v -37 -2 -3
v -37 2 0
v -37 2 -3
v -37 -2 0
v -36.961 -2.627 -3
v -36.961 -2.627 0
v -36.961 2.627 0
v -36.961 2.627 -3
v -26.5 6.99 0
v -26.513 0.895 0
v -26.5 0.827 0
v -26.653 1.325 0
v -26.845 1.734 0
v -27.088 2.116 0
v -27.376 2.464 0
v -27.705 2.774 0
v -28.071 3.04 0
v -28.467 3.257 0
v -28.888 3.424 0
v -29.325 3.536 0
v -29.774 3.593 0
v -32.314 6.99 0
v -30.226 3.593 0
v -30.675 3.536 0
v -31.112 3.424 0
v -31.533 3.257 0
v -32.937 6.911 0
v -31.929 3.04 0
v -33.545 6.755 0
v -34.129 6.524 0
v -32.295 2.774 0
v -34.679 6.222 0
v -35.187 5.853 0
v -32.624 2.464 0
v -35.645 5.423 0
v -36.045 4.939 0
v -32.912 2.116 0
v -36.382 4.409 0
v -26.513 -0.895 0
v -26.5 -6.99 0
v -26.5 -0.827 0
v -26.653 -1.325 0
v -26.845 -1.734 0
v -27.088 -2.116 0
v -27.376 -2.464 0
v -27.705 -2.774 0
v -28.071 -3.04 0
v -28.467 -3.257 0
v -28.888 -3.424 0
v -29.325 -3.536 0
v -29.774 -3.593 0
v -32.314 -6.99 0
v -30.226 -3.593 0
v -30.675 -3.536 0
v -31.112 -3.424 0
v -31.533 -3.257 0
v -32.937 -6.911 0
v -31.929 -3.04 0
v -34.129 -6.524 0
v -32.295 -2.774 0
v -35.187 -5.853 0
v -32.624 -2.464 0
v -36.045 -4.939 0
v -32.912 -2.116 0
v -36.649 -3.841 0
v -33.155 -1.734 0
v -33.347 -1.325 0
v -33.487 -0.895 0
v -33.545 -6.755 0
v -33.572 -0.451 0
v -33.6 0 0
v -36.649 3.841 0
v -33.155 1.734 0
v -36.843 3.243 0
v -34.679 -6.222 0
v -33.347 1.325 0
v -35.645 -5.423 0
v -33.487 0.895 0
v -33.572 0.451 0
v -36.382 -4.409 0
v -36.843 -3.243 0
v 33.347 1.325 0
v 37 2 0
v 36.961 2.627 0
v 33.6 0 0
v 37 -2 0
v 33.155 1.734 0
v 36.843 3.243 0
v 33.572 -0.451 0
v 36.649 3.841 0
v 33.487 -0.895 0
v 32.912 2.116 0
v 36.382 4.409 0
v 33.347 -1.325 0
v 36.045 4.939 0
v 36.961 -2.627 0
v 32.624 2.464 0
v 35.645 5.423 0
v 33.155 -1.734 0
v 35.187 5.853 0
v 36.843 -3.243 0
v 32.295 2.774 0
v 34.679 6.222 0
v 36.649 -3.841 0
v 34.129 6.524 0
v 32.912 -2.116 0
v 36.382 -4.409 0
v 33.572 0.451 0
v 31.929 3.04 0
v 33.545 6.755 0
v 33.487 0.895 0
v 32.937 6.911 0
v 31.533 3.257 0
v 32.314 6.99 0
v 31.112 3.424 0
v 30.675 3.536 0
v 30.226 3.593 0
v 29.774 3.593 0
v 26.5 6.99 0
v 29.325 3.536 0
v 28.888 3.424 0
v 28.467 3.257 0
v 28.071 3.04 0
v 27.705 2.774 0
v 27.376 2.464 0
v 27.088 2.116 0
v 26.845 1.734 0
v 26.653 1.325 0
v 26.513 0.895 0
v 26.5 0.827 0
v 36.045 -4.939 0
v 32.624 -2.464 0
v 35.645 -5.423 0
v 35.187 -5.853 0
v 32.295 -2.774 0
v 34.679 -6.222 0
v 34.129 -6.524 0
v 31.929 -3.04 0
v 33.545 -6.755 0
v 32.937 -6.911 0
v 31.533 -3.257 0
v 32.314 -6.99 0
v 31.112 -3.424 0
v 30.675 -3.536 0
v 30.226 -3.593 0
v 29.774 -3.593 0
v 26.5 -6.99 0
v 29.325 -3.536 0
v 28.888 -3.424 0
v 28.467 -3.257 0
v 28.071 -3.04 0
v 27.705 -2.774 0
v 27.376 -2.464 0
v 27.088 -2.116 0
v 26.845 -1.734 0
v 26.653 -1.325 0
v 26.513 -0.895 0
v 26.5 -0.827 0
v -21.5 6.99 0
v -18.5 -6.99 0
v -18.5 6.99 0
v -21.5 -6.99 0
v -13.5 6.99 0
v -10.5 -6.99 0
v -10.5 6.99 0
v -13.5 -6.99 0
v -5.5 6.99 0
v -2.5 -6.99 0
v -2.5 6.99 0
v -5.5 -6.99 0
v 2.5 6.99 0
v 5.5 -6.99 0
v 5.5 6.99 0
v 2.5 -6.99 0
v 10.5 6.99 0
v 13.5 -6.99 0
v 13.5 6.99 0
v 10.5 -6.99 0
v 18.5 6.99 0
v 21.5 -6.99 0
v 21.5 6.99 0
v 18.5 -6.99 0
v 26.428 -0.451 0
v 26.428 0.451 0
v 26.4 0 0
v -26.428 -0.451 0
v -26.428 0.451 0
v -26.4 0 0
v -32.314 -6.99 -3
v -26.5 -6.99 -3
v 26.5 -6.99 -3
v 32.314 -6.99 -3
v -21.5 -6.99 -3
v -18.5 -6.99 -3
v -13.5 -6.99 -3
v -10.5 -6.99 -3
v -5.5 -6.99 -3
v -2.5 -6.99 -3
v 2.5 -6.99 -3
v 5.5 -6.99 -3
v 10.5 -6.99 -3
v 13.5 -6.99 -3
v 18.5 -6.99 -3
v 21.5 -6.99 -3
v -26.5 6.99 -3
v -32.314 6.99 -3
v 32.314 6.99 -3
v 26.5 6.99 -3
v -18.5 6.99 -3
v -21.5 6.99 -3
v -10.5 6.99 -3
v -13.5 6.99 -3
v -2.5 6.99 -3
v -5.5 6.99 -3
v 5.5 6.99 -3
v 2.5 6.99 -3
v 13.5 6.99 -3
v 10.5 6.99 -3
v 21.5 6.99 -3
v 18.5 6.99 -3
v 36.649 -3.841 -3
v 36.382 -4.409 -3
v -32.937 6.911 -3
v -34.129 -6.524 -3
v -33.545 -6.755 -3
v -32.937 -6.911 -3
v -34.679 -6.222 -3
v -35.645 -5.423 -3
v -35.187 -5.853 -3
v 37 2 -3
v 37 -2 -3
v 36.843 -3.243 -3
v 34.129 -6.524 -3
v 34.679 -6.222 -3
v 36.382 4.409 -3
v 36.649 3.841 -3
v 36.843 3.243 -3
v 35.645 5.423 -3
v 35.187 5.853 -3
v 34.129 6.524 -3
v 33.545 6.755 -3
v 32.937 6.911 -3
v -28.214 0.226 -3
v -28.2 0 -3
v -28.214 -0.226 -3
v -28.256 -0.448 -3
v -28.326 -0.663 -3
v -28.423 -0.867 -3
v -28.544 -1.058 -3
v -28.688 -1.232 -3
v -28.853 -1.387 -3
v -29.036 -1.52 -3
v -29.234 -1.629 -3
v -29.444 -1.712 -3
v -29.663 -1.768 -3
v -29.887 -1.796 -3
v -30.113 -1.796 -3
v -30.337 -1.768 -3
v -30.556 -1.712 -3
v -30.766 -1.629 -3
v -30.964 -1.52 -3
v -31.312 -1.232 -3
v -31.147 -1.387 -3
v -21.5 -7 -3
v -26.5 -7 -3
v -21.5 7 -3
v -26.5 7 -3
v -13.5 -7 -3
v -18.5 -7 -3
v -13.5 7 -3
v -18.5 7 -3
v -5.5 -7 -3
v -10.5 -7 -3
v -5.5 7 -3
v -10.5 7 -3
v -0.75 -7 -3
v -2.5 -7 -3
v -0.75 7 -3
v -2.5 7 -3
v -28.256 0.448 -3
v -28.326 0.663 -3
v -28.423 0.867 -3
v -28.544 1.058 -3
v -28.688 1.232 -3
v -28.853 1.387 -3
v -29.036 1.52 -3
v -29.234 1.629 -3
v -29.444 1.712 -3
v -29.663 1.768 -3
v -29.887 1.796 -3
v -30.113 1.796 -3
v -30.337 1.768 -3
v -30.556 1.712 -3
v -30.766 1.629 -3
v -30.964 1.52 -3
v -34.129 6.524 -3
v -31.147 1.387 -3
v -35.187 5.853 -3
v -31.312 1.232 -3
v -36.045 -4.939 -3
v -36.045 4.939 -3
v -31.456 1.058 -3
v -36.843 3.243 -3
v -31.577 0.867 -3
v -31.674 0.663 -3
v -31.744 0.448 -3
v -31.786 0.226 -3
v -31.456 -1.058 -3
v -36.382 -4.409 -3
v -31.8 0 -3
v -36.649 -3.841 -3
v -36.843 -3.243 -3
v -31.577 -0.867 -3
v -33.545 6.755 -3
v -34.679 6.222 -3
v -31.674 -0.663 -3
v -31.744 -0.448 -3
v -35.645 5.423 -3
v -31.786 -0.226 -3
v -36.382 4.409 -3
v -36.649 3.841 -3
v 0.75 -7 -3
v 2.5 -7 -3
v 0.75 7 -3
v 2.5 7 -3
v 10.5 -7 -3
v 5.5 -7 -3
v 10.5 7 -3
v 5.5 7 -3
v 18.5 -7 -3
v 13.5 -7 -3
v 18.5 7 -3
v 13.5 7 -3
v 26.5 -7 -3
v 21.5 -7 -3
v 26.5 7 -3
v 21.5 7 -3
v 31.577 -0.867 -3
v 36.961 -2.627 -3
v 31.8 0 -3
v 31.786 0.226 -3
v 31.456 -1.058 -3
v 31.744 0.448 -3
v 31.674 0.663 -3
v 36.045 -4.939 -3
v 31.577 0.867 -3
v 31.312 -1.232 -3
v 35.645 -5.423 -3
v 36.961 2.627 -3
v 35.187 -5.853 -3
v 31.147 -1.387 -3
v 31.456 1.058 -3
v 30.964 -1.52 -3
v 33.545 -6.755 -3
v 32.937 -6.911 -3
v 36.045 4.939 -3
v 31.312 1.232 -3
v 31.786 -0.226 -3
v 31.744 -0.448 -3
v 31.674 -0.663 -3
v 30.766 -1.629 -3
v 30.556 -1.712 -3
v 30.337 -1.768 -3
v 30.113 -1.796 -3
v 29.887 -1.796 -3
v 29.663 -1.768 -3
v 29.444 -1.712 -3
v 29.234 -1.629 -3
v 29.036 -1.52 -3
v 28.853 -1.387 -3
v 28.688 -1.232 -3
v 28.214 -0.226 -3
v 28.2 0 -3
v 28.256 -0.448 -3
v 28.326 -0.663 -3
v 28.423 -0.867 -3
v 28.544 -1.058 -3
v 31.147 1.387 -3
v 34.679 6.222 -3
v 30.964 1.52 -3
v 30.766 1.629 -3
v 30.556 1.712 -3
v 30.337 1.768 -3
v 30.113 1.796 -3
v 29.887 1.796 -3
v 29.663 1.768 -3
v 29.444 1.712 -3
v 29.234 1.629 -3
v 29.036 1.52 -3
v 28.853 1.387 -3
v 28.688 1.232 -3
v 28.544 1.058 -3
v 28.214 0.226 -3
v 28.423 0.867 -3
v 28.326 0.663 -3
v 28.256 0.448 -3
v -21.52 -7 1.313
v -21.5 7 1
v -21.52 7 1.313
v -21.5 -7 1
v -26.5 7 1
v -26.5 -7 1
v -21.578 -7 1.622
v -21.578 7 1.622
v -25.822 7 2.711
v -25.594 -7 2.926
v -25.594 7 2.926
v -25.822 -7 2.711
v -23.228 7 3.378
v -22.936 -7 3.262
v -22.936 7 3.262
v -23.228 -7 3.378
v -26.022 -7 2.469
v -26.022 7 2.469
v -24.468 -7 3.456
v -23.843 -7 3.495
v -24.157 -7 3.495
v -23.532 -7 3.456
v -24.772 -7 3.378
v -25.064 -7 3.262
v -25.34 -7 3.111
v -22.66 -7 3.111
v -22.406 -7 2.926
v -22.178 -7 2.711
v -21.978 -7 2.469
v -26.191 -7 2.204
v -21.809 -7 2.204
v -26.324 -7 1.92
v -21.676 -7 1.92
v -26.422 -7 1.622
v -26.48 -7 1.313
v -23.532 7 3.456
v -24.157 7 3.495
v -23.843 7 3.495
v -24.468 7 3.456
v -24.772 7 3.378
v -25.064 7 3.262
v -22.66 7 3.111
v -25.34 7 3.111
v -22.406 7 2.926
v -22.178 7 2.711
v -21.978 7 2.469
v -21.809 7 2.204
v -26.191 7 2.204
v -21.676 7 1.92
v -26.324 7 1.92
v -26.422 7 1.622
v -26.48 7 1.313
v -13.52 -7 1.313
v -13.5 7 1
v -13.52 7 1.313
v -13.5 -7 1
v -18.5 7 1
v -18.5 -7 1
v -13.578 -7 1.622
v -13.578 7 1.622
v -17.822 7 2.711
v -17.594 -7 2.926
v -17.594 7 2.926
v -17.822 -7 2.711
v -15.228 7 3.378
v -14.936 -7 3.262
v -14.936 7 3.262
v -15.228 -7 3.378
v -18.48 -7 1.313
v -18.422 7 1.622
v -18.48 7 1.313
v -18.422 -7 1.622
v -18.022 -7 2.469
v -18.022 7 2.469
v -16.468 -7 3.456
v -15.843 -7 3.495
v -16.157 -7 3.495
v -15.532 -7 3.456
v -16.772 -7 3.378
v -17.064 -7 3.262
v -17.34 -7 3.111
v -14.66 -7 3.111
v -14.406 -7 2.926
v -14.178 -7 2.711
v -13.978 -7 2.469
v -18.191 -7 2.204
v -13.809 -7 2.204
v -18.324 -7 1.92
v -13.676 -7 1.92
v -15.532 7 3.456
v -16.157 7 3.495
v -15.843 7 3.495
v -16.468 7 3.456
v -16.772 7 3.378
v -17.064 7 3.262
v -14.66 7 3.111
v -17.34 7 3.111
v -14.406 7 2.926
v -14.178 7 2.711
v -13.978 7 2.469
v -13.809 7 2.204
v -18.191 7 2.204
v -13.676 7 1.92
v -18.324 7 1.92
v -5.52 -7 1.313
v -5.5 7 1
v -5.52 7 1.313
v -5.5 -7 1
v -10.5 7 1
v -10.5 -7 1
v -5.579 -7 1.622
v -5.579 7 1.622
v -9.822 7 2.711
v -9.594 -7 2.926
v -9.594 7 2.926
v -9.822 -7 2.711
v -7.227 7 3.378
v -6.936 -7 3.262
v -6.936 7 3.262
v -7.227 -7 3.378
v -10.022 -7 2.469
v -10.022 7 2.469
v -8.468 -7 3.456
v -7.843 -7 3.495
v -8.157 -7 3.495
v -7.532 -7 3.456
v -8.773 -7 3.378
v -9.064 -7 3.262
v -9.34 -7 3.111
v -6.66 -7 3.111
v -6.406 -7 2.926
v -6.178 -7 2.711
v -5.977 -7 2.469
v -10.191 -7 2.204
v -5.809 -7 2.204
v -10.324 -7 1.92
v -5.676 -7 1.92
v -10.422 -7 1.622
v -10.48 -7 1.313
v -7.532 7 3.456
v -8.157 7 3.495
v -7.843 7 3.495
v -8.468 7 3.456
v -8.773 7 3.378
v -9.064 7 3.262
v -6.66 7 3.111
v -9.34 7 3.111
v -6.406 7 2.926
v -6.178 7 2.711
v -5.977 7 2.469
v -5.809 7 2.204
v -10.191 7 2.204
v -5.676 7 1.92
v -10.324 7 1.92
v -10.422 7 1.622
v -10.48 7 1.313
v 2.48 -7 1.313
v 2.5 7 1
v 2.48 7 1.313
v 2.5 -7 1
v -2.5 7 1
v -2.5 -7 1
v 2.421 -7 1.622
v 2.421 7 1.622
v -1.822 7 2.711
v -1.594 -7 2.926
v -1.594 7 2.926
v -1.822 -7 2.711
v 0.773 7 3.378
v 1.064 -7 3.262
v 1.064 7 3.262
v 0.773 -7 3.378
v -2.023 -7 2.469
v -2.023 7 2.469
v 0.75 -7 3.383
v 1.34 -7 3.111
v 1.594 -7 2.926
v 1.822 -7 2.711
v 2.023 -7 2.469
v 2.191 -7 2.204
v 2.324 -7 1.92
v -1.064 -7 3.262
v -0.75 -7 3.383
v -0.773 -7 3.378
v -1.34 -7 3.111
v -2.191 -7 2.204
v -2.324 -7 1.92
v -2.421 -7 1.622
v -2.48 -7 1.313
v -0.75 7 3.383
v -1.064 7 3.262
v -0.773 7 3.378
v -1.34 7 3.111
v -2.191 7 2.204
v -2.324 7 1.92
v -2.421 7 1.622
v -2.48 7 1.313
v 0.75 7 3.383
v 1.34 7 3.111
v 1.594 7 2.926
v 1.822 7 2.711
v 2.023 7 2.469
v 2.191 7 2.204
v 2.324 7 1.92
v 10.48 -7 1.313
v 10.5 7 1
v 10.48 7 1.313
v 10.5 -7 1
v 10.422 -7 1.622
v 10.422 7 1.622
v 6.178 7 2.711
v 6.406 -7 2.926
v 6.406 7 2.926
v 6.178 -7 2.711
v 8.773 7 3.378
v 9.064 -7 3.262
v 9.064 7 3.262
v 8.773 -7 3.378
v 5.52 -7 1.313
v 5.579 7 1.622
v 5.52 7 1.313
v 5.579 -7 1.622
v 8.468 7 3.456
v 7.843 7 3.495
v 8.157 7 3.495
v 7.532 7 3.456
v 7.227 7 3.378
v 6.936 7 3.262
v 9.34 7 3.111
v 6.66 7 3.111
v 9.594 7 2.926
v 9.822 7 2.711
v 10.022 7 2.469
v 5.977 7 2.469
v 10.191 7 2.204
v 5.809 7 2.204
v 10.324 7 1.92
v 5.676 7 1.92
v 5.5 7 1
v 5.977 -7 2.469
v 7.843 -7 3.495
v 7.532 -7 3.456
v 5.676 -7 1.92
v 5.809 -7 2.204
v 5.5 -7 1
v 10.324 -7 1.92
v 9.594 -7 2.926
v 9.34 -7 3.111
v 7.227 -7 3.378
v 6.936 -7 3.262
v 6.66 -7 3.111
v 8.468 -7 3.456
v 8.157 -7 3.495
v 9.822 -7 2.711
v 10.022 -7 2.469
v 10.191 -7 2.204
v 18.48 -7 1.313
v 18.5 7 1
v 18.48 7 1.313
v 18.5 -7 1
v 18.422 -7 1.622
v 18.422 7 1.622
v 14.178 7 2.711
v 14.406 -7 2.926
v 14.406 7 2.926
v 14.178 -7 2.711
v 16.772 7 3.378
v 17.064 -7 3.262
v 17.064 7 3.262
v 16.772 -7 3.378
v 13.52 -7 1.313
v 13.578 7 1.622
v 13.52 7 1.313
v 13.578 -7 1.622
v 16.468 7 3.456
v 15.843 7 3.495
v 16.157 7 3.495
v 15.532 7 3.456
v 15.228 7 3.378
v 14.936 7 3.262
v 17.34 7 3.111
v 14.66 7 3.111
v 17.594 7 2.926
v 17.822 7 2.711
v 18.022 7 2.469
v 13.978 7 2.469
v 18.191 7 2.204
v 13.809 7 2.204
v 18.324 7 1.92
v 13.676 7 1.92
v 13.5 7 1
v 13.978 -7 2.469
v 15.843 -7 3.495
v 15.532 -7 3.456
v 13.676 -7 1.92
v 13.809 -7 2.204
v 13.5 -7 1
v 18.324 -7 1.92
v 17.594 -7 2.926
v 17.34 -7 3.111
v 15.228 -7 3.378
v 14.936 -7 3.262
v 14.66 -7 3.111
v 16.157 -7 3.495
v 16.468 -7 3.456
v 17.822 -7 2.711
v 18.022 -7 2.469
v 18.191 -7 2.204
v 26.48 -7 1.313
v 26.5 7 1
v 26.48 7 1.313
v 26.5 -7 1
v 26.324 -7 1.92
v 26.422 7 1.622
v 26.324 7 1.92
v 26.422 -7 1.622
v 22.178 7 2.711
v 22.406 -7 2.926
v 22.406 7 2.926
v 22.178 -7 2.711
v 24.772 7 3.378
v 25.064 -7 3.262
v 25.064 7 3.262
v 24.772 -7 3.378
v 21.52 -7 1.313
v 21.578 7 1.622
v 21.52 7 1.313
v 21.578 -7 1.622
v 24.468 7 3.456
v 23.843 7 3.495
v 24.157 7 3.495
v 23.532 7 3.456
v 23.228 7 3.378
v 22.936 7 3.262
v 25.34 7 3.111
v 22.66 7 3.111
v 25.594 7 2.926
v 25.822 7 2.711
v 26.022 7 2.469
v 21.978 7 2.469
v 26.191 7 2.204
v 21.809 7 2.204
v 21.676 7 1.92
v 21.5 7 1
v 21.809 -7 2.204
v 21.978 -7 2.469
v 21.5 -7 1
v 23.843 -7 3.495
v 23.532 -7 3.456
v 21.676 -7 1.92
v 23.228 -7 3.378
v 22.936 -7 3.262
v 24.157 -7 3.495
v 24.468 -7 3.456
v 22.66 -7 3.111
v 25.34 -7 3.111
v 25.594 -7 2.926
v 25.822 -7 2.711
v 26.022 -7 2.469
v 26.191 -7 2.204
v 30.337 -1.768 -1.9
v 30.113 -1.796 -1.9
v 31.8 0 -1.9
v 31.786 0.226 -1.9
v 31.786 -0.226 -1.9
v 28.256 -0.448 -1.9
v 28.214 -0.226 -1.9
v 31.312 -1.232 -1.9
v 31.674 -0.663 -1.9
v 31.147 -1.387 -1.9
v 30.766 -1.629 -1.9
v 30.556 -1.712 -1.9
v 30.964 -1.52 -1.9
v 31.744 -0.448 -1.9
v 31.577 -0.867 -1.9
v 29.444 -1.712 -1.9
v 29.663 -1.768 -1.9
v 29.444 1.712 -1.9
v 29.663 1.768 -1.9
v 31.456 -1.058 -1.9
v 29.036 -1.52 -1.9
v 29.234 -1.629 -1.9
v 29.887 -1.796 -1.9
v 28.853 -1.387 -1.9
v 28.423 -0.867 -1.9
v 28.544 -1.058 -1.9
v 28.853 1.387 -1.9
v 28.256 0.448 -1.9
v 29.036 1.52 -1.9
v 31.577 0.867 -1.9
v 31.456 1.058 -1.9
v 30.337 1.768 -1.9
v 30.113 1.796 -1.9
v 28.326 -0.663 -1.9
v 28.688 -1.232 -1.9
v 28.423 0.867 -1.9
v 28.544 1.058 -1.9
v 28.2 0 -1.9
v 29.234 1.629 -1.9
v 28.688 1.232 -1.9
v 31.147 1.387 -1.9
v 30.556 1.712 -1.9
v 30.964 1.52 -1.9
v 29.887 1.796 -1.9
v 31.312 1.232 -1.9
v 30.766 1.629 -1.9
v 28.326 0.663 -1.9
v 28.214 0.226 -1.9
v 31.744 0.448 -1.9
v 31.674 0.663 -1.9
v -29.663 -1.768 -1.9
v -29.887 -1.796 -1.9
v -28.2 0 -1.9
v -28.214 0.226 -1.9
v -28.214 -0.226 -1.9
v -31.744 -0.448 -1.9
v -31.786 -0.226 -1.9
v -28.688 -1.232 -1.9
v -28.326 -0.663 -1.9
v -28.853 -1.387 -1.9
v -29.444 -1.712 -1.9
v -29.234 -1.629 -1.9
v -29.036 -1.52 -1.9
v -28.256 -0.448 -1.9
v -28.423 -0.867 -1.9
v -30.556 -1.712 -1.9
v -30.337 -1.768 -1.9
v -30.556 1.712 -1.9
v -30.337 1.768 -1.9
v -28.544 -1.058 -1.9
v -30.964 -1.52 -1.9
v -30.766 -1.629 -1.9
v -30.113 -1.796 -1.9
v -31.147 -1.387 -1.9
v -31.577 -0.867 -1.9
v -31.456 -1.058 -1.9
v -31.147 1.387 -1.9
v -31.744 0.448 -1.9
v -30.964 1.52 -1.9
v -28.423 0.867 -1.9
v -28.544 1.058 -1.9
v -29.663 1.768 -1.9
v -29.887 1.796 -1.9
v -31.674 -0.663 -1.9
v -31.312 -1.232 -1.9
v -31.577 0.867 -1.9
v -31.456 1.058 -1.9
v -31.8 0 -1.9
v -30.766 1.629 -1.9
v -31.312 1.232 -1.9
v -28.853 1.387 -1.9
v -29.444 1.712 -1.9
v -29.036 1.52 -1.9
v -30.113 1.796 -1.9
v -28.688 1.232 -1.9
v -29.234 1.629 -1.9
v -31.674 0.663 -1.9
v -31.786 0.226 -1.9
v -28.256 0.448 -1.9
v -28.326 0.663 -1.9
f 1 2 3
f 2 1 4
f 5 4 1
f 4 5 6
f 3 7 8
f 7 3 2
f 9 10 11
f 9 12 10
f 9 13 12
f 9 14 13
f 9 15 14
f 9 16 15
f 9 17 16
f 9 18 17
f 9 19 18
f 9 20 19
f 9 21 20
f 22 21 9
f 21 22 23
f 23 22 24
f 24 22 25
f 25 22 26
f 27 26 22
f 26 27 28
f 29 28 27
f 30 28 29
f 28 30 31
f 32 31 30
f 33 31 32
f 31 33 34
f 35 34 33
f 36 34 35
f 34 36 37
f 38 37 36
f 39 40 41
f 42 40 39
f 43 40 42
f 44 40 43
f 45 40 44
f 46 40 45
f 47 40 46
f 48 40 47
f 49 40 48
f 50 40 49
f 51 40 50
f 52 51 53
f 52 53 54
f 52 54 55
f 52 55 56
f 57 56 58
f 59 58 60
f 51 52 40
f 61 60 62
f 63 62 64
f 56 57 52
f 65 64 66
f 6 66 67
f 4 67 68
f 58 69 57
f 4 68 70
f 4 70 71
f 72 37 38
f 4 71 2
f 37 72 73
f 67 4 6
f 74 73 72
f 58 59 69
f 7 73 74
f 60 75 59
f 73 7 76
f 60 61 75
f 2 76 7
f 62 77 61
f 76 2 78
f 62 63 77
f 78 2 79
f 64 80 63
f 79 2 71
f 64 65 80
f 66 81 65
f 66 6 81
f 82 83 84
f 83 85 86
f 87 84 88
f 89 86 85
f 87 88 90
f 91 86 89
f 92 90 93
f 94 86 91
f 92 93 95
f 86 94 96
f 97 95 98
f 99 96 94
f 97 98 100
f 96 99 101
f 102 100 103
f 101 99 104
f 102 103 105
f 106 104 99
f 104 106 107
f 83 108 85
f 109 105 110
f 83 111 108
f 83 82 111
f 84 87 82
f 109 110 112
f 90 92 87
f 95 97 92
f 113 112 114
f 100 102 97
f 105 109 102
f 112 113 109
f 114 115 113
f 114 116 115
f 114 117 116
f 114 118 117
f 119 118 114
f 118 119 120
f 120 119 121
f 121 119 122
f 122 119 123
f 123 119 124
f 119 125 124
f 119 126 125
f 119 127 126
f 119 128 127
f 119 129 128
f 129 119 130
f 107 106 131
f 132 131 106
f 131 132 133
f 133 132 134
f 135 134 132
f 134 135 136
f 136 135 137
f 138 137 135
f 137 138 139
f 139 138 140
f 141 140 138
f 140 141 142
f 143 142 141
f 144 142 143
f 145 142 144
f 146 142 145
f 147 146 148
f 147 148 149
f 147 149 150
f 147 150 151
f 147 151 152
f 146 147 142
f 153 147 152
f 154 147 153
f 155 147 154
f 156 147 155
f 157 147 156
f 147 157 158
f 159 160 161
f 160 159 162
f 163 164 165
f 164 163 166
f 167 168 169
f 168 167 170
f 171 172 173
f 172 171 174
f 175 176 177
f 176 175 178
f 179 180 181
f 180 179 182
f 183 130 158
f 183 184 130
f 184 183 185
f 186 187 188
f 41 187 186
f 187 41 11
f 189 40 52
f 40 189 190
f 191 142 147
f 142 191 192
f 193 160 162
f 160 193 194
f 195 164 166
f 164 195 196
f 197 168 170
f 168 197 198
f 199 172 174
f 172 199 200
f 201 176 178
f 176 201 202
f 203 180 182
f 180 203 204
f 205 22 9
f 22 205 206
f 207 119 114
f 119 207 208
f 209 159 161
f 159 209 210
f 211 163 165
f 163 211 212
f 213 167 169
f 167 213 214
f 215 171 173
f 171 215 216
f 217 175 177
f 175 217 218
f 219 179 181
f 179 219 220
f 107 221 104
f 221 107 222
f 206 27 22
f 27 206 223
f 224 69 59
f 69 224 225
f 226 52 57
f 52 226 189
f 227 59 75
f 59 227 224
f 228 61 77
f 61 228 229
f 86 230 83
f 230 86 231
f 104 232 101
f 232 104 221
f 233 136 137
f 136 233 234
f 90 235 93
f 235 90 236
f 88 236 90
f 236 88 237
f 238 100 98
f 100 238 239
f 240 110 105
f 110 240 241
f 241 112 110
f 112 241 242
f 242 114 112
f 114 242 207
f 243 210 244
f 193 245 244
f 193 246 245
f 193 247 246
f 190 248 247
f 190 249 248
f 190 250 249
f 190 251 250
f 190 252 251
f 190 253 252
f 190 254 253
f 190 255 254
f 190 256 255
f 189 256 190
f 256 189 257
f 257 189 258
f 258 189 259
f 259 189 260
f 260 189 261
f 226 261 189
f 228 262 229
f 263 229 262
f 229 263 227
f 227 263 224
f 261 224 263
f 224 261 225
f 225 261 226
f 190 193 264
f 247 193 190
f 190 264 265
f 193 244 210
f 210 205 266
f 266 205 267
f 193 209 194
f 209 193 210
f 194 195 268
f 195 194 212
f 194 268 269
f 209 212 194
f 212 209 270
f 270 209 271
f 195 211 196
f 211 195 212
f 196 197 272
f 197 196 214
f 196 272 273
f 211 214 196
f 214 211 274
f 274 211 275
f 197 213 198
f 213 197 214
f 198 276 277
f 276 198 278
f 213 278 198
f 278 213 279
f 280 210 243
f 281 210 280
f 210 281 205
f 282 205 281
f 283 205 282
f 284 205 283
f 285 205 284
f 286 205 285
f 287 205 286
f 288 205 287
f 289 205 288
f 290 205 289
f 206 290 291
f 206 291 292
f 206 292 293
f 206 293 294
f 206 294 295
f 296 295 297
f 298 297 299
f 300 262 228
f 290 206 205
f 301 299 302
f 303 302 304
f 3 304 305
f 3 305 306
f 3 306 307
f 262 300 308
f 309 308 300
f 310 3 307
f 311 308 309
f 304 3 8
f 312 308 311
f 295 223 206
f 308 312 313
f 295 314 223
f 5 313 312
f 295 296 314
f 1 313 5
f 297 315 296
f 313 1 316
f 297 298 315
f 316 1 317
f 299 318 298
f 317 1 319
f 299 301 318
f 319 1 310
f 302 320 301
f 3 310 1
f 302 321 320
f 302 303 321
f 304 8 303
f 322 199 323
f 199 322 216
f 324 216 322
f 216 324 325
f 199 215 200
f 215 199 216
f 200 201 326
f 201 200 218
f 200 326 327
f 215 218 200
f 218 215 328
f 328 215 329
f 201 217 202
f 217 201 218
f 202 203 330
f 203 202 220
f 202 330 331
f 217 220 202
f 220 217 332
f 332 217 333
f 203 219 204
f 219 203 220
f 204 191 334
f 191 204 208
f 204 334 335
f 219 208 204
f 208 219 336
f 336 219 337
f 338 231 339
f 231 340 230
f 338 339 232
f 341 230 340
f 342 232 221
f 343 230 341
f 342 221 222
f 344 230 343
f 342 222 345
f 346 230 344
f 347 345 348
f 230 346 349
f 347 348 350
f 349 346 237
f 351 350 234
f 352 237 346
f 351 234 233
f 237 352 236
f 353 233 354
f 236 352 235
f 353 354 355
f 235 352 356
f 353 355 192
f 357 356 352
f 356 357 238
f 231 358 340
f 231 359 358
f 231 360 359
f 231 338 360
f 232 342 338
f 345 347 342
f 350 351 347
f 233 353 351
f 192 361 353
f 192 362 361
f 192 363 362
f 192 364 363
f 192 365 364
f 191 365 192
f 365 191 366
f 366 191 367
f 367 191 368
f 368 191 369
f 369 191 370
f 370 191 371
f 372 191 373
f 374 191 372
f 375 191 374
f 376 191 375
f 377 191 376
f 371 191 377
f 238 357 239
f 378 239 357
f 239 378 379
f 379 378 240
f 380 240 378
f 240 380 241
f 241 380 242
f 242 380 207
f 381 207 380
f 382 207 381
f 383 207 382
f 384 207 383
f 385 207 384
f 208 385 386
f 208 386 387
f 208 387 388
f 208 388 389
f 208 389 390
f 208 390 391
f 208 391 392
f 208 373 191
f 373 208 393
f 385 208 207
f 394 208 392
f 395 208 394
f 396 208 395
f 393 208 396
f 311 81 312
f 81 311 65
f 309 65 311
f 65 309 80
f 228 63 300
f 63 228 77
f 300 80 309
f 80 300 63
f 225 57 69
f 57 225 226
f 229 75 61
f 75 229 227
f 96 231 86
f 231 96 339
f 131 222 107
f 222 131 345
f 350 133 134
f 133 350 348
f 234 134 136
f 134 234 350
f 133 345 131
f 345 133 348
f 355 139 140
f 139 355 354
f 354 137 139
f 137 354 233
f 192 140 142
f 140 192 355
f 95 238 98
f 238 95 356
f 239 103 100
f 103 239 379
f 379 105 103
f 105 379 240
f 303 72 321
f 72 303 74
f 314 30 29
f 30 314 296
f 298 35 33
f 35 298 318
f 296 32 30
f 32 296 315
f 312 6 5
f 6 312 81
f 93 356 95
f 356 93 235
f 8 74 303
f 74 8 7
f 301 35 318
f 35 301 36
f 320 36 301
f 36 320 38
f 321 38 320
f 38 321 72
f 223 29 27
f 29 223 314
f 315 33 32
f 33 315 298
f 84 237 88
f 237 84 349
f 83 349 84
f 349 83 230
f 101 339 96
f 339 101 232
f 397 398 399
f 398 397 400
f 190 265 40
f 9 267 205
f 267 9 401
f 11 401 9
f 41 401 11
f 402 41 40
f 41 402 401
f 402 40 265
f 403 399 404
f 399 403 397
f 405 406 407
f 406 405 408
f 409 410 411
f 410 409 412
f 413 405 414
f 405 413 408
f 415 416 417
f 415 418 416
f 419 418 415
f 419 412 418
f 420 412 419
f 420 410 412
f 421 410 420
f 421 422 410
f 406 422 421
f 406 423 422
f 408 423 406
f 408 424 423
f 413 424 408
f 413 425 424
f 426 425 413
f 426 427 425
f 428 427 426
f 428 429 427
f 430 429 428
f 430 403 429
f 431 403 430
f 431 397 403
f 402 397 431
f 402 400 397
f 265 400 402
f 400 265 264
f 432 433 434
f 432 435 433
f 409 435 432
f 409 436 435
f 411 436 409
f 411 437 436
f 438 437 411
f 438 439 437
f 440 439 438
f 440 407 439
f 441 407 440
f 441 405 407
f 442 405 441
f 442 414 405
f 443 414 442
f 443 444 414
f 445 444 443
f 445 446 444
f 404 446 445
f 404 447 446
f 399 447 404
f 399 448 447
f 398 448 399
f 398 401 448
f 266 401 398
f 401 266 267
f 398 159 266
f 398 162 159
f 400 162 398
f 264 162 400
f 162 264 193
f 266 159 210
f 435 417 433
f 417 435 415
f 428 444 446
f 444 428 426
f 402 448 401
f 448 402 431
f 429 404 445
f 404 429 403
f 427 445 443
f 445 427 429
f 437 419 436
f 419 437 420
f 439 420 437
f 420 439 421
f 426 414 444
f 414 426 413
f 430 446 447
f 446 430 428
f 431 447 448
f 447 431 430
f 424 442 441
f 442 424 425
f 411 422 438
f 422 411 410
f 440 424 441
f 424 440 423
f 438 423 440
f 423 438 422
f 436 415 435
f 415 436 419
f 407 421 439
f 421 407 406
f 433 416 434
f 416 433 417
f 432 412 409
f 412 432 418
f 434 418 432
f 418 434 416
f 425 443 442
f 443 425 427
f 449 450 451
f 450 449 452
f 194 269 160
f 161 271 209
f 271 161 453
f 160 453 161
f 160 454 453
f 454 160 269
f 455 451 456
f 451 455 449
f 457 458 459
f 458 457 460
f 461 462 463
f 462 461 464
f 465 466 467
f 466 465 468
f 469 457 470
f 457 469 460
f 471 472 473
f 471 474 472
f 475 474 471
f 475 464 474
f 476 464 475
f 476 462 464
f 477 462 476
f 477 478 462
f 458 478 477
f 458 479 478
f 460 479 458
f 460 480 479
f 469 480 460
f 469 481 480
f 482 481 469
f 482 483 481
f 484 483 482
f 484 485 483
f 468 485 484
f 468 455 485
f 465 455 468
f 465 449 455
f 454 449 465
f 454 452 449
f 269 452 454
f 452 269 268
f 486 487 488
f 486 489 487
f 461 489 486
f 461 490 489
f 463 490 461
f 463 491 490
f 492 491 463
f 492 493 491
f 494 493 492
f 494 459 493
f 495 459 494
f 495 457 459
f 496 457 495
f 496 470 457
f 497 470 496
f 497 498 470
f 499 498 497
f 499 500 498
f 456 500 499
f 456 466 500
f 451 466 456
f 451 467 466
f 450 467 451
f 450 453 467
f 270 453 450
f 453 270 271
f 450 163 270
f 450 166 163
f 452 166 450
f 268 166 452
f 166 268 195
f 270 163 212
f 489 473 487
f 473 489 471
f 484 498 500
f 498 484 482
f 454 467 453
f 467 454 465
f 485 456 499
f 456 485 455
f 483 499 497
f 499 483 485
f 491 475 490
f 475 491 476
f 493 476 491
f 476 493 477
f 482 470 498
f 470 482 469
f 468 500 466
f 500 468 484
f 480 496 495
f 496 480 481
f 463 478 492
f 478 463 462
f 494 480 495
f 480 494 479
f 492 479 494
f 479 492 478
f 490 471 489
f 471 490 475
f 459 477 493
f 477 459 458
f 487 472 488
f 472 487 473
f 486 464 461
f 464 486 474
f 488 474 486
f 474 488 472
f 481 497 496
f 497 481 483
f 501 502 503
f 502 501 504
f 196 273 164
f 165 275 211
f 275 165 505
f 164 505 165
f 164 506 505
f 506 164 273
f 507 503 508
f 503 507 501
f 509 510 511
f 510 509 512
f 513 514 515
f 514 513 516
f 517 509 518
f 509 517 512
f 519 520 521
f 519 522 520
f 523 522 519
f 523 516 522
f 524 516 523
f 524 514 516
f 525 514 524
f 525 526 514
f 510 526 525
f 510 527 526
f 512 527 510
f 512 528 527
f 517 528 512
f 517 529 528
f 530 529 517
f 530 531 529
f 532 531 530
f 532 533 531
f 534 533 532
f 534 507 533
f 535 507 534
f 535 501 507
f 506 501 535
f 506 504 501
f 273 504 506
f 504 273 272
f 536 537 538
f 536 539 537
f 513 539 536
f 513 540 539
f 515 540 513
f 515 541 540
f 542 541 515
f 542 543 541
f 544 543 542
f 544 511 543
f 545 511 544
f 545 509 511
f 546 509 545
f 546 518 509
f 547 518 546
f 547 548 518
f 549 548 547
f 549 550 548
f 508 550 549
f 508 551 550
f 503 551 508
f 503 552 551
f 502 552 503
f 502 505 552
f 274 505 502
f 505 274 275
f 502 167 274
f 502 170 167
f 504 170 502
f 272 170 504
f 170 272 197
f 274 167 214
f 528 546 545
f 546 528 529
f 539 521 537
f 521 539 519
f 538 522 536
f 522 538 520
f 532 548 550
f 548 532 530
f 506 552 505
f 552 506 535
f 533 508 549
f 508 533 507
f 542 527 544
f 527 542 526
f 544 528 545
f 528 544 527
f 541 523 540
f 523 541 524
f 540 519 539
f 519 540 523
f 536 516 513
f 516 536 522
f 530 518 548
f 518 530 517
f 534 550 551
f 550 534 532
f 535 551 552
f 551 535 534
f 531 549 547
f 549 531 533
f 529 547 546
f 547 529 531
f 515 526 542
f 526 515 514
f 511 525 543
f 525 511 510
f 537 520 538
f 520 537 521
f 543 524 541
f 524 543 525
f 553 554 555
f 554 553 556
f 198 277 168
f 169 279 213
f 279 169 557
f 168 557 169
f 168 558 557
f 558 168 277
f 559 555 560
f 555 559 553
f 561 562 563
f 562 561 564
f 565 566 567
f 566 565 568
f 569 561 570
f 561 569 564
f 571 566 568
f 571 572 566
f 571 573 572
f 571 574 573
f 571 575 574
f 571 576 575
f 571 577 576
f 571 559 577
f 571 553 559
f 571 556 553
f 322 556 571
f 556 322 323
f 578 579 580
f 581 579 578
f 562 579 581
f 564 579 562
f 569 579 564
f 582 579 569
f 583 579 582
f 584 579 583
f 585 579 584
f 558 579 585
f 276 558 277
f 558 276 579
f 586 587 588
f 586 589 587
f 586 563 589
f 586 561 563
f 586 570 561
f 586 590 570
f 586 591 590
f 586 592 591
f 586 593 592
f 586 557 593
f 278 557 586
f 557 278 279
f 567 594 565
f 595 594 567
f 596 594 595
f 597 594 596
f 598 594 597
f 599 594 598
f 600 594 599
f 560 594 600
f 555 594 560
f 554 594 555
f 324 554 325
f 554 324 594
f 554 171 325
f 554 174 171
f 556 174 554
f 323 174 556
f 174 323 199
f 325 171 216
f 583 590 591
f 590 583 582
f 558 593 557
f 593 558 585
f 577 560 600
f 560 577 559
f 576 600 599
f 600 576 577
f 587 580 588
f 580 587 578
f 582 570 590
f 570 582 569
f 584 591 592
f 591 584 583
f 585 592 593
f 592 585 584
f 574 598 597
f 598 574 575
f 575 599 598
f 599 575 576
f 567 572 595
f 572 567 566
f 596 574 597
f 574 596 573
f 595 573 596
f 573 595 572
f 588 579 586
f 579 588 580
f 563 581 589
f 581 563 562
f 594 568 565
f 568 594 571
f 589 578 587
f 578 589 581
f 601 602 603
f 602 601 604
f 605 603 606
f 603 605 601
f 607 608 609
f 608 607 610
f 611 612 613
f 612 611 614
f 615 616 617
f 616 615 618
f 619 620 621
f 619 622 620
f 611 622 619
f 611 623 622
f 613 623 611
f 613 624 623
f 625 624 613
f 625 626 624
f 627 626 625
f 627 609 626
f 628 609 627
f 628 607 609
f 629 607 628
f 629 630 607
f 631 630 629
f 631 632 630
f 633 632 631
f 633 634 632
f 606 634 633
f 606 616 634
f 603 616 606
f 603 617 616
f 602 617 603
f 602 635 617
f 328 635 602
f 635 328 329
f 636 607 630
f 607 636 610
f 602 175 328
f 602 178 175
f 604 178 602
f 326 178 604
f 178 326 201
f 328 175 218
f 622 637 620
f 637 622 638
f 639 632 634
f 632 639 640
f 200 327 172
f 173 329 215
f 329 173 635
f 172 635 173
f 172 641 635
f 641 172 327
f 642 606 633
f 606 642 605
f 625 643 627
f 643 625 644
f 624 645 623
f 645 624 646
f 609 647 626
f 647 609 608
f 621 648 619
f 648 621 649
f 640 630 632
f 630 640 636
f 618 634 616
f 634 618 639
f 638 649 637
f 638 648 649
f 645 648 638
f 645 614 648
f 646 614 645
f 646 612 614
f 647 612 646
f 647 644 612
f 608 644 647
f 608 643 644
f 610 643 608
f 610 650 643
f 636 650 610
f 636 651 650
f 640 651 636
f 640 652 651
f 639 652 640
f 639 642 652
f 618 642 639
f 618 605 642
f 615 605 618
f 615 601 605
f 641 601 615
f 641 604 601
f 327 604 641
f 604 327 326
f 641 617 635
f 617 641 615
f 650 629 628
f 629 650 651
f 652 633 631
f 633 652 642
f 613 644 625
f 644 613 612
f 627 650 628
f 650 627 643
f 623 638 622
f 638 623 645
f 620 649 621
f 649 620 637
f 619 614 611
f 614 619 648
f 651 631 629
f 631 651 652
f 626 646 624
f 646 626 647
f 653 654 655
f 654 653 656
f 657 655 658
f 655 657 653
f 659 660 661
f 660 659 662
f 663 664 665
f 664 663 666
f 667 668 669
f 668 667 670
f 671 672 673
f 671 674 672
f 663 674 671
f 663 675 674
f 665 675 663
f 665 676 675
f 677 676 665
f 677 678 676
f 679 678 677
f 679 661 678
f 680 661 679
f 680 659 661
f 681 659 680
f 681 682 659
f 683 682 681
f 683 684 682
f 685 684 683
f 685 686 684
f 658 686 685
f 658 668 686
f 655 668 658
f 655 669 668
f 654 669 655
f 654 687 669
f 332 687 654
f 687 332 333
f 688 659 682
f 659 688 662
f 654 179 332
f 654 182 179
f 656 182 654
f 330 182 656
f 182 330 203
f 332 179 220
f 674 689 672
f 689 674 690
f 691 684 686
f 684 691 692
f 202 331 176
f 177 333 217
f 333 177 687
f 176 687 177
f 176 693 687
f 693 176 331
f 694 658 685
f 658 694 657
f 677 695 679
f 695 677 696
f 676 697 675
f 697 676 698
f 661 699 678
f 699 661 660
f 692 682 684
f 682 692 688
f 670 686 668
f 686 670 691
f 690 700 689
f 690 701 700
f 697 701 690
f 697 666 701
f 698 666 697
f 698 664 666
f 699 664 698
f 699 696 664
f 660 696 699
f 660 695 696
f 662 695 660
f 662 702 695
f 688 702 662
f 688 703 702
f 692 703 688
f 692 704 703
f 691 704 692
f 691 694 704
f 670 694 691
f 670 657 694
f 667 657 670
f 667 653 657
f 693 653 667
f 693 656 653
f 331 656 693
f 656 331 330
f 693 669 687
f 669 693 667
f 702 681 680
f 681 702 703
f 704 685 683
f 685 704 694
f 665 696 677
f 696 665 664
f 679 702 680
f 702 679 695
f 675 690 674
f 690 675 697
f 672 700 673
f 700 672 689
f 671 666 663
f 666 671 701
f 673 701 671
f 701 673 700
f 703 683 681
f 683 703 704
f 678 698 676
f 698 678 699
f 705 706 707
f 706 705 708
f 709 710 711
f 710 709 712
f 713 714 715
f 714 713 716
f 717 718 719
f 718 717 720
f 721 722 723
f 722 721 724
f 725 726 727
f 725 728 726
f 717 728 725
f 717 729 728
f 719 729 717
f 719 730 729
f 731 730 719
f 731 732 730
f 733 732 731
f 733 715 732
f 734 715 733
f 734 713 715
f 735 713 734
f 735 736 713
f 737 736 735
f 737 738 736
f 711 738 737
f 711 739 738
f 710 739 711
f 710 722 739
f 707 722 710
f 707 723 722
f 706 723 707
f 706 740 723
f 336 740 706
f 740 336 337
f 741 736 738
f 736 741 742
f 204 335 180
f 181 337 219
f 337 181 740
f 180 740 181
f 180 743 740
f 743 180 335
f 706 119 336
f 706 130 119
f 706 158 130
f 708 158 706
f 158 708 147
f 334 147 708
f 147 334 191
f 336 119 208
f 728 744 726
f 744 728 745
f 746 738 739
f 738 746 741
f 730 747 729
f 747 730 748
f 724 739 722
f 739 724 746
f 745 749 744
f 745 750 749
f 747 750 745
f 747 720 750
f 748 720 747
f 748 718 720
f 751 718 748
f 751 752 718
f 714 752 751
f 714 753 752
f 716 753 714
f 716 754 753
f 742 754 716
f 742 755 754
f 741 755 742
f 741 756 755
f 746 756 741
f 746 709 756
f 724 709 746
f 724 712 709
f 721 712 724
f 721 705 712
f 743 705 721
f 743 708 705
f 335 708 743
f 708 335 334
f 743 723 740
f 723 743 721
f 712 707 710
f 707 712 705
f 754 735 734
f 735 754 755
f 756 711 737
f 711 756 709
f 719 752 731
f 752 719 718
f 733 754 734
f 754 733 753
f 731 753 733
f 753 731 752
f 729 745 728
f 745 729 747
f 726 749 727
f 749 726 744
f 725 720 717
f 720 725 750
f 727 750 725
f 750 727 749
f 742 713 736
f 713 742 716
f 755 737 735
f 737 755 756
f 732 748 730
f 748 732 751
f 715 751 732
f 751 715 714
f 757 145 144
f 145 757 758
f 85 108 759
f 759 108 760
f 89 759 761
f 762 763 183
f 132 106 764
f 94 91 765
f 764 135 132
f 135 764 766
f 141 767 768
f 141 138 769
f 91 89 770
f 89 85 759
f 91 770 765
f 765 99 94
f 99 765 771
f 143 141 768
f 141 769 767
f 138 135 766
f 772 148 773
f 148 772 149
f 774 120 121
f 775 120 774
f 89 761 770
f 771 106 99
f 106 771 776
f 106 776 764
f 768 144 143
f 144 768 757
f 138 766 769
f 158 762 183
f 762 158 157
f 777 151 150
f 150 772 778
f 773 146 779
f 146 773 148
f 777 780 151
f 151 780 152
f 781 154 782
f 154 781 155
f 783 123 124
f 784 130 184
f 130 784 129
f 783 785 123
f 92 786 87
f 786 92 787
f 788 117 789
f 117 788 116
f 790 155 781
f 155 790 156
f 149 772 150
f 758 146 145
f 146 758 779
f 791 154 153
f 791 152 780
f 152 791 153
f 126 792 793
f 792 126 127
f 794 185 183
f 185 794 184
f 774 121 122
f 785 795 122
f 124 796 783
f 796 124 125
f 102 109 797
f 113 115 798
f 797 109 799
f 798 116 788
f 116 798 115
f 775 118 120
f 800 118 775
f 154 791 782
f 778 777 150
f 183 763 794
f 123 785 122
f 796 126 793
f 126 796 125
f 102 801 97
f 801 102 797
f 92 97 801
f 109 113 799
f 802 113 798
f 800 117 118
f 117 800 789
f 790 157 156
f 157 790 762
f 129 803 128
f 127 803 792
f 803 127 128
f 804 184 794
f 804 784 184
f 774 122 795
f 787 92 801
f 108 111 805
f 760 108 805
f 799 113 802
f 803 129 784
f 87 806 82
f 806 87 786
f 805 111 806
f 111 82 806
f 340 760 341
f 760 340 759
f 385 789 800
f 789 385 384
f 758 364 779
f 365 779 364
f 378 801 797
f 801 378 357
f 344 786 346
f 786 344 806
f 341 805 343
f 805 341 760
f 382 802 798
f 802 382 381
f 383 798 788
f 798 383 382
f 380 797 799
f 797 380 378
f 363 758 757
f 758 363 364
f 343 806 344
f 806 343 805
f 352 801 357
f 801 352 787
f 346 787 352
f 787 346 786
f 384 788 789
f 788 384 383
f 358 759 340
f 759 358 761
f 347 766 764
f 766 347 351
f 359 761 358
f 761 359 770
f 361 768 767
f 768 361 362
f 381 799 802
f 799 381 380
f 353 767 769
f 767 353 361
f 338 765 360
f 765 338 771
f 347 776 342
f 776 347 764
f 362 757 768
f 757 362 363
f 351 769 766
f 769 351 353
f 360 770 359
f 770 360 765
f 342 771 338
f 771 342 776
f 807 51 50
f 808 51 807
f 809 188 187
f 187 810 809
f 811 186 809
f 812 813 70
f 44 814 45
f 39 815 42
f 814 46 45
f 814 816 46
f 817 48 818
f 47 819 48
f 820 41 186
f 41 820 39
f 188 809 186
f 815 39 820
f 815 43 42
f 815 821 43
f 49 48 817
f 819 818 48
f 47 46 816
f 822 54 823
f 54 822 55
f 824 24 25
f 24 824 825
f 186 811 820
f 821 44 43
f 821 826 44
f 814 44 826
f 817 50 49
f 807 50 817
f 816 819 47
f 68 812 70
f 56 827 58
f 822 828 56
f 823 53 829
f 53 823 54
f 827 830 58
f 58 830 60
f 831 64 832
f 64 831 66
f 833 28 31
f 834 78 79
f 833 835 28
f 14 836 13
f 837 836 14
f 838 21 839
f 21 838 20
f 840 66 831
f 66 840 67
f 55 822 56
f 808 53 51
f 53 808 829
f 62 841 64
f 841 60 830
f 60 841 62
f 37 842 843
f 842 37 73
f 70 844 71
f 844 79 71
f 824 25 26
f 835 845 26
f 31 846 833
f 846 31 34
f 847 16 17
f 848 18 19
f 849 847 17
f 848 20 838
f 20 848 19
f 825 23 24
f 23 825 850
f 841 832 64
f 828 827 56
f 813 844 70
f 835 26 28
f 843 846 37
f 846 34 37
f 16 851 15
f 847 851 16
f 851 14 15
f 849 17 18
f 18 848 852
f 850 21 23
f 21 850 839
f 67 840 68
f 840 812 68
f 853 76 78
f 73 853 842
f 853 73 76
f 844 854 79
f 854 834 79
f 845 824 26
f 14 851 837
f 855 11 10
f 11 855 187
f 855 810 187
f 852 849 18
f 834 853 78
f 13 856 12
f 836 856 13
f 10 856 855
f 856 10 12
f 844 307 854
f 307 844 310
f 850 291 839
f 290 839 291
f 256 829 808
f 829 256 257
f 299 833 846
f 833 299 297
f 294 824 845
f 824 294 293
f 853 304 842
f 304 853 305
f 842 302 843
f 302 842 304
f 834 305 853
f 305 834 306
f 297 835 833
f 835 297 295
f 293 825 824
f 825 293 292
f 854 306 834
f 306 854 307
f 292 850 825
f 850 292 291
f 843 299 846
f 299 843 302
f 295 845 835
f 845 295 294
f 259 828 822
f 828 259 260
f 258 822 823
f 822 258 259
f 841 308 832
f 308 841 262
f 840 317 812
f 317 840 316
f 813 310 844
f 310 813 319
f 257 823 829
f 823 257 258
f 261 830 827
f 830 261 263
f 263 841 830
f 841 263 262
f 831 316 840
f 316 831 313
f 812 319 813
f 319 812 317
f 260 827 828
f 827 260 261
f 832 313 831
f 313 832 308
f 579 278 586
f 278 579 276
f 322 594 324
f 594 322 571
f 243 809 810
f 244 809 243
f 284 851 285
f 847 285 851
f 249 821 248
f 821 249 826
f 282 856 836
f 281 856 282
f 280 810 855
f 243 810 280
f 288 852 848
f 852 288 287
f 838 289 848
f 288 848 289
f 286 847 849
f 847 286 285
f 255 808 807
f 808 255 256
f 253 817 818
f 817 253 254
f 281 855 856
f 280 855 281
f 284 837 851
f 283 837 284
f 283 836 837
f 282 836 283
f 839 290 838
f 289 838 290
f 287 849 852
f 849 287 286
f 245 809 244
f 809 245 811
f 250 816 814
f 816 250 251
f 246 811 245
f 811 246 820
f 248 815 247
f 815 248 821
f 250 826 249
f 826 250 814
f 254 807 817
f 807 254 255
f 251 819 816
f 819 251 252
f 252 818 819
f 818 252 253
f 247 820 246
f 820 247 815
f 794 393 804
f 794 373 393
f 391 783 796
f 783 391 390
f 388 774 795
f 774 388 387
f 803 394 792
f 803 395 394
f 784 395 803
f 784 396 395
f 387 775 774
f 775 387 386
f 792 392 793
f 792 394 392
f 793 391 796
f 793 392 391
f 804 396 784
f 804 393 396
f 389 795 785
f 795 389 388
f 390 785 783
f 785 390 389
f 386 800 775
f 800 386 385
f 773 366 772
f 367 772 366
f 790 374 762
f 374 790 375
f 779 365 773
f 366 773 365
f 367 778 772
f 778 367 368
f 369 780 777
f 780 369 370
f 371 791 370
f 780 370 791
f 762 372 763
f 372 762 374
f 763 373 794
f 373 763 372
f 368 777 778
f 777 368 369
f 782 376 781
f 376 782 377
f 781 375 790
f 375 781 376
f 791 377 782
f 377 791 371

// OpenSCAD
$fn = 50;


difference() {
	union() {
		translate(v = [0, 0, -3]) {
			hull() {
				translate(v = [-32.0000000000, 2.0000000000, 0]) {
					cylinder(h = 3, r = 5);
				}
				translate(v = [32.0000000000, 2.0000000000, 0]) {
					cylinder(h = 3, r = 5);
				}
				translate(v = [-32.0000000000, -2.0000000000, 0]) {
					cylinder(h = 3, r = 5);
				}
				translate(v = [32.0000000000, -2.0000000000, 0]) {
					cylinder(h = 3, r = 5);
				}
			}
		}
		translate(v = [-24.0000000000, 7.0000000000, -1.5000000000]) {
			rotate(a = [90, 0, 0]) {
				hull() {
					translate(v = [-0.0000000000, 2.5000000000, 0]) {
						cylinder(h = 14, r = 2.5000000000);
					}
					translate(v = [0.0000000000, 2.5000000000, 0]) {
						cylinder(h = 14, r = 2.5000000000);
					}
					translate(v = [-0.0000000000, -2.5000000000, 0]) {
						cylinder(h = 14, r = 2.5000000000);
					}
					translate(v = [0.0000000000, -2.5000000000, 0]) {
						cylinder(h = 14, r = 2.5000000000);
					}
				}
			}
		}
		translate(v = [-16.0000000000, 7.0000000000, -1.5000000000]) {
			rotate(a = [90, 0, 0]) {
				hull() {
					translate(v = [-0.0000000000, 2.5000000000, 0]) {
						cylinder(h = 14, r = 2.5000000000);
					}
					translate(v = [0.0000000000, 2.5000000000, 0]) {
						cylinder(h = 14, r = 2.5000000000);
					}
					translate(v = [-0.0000000000, -2.5000000000, 0]) {
						cylinder(h = 14, r = 2.5000000000);
					}
					translate(v = [0.0000000000, -2.5000000000, 0]) {
						cylinder(h = 14, r = 2.5000000000);
					}
				}
			}
		}
		translate(v = [-8.0000000000, 7.0000000000, -1.5000000000]) {
			rotate(a = [90, 0, 0]) {
				hull() {
					translate(v = [-0.0000000000, 2.5000000000, 0]) {
						cylinder(h = 14, r = 2.5000000000);
					}
					translate(v = [0.0000000000, 2.5000000000, 0]) {
						cylinder(h = 14, r = 2.5000000000);
					}
					translate(v = [-0.0000000000, -2.5000000000, 0]) {
						cylinder(h = 14, r = 2.5000000000);
					}
					translate(v = [0.0000000000, -2.5000000000, 0]) {
						cylinder(h = 14, r = 2.5000000000);
					}
				}
			}
		}
		translate(v = [0.0000000000, 7.0000000000, -1.5000000000]) {
			rotate(a = [90, 0, 0]) {
				hull() {
					translate(v = [-0.0000000000, 2.5000000000, 0]) {
						cylinder(h = 14, r = 2.5000000000);
					}
					translate(v = [0.0000000000, 2.5000000000, 0]) {
						cylinder(h = 14, r = 2.5000000000);
					}
					translate(v = [-0.0000000000, -2.5000000000, 0]) {
						cylinder(h = 14, r = 2.5000000000);
					}
					translate(v = [0.0000000000, -2.5000000000, 0]) {
						cylinder(h = 14, r = 2.5000000000);
					}
				}
			}
		}
		translate(v = [8.0000000000, 7.0000000000, -1.5000000000]) {
			rotate(a = [90, 0, 0]) {
				hull() {
					translate(v = [-0.0000000000, 2.5000000000, 0]) {
						cylinder(h = 14, r = 2.5000000000);
					}
					translate(v = [0.0000000000, 2.5000000000, 0]) {
						cylinder(h = 14, r = 2.5000000000);
					}
					translate(v = [-0.0000000000, -2.5000000000, 0]) {
						cylinder(h = 14, r = 2.5000000000);
					}
					translate(v = [0.0000000000, -2.5000000000, 0]) {
						cylinder(h = 14, r = 2.5000000000);
					}
				}
			}
		}
		translate(v = [16.0000000000, 7.0000000000, -1.5000000000]) {
			rotate(a = [90, 0, 0]) {
				hull() {
					translate(v = [-0.0000000000, 2.5000000000, 0]) {
						cylinder(h = 14, r = 2.5000000000);
					}
					translate(v = [0.0000000000, 2.5000000000, 0]) {
						cylinder(h = 14, r = 2.5000000000);
					}
					translate(v = [-0.0000000000, -2.5000000000, 0]) {
						cylinder(h = 14, r = 2.5000000000);
					}
					translate(v = [0.0000000000, -2.5000000000, 0]) {
						cylinder(h = 14, r = 2.5000000000);
					}
				}
			}
		}
		translate(v = [24.0000000000, 7.0000000000, -1.5000000000]) {
			rotate(a = [90, 0, 0]) {
				hull() {
					translate(v = [-0.0000000000, 2.5000000000, 0]) {
						cylinder(h = 14, r = 2.5000000000);
					}
					translate(v = [0.0000000000, 2.5000000000, 0]) {
						cylinder(h = 14, r = 2.5000000000);
					}
					translate(v = [-0.0000000000, -2.5000000000, 0]) {
						cylinder(h = 14, r = 2.5000000000);
					}
					translate(v = [0.0000000000, -2.5000000000, 0]) {
						cylinder(h = 14, r = 2.5000000000);
					}
				}
			}
		}
	}
	union() {
		translate(v = [30.0000000000, 0.0000000000, 0]) {
			rotate(a = [0, 0, 0]) {
				difference() {
					union() {
						translate(v = [0, 0, -3.0000000000]) {
							cylinder(h = 3, r = 1.5000000000);
						}
						translate(v = [0, 0, -1.9000000000]) {
							cylinder(h = 1.9000000000, r1 = 1.8000000000, r2 = 3.6000000000);
						}
						translate(v = [0, 0, -3.0000000000]) {
							cylinder(h = 3, r = 1.8000000000);
						}
						translate(v = [0, 0, -3.0000000000]) {
							cylinder(h = 3, r = 1.5000000000);
						}
					}
					union();
				}
			}
		}
		translate(v = [-30.0000000000, 0.0000000000, 0]) {
			rotate(a = [0, 0, 0]) {
				difference() {
					union() {
						translate(v = [0, 0, -3.0000000000]) {
							cylinder(h = 3, r = 1.5000000000);
						}
						translate(v = [0, 0, -1.9000000000]) {
							cylinder(h = 1.9000000000, r1 = 1.8000000000, r2 = 3.6000000000);
						}
						translate(v = [0, 0, -3.0000000000]) {
							cylinder(h = 3, r = 1.8000000000);
						}
						translate(v = [0, 0, -3.0000000000]) {
							cylinder(h = 3, r = 1.5000000000);
						}
					}
					union();
				}
			}
		}
		translate(v = [0, -250.0000000000, -250.0000000000]) {
			cube(size = [1.5000000000, 500, 500]);
		}
		translate(v = [-250.0000000000, -250.0000000000, -503]) {
			cube(size = [500, 500, 500]);
		}
		translate(v = [-250.0000000000, -250.0000000000, -503]) {
			cube(size = [500, 500, 500]);
		}
		translate(v = [-250.0000000000, -250.0000000000, -503]) {
			cube(size = [500, 500, 500]);
		}
		translate(v = [-30.0000000000, 0.0000000000, -100.0000000000]) {
			cylinder(h = 200, r = 1.8000000000);
		}
		translate(v = [30.0000000000, 0.0000000000, -100.0000000000]) {
			cylinder(h = 200, r = 1.8000000000);
		}
		translate(v = [30.0000000000, 0.0000000000, -100.0000000000]) {
			cylinder(h = 200, r = 1.8000000000);
		}
		translate(v = [-30.0000000000, 0.0000000000, -100.0000000000]) {
			cylinder(h = 200, r = 1.8000000000);
		}
		translate(v = [30.0000000000, 0.0000000000, -100.0000000000]) {
			cylinder(h = 200, r = 1.8000000000);
		}
		translate(v = [-30.0000000000, 0.0000000000, -100.0000000000]) {
			cylinder(h = 200, r = 1.8000000000);
		}
		translate(v = [30.0000000000, 0.0000000000, -100.0000000000]) {
			cylinder(h = 200, r = 1.8000000000);
		}
		translate(v = [-30.0000000000, 0.0000000000, -100.0000000000]) {
			cylinder(h = 200, r = 1.8000000000);
		}
		translate(v = [30.0000000000, 0.0000000000, -100.0000000000]) {
			cylinder(h = 200, r = 1.8000000000);
		}
	}
}
